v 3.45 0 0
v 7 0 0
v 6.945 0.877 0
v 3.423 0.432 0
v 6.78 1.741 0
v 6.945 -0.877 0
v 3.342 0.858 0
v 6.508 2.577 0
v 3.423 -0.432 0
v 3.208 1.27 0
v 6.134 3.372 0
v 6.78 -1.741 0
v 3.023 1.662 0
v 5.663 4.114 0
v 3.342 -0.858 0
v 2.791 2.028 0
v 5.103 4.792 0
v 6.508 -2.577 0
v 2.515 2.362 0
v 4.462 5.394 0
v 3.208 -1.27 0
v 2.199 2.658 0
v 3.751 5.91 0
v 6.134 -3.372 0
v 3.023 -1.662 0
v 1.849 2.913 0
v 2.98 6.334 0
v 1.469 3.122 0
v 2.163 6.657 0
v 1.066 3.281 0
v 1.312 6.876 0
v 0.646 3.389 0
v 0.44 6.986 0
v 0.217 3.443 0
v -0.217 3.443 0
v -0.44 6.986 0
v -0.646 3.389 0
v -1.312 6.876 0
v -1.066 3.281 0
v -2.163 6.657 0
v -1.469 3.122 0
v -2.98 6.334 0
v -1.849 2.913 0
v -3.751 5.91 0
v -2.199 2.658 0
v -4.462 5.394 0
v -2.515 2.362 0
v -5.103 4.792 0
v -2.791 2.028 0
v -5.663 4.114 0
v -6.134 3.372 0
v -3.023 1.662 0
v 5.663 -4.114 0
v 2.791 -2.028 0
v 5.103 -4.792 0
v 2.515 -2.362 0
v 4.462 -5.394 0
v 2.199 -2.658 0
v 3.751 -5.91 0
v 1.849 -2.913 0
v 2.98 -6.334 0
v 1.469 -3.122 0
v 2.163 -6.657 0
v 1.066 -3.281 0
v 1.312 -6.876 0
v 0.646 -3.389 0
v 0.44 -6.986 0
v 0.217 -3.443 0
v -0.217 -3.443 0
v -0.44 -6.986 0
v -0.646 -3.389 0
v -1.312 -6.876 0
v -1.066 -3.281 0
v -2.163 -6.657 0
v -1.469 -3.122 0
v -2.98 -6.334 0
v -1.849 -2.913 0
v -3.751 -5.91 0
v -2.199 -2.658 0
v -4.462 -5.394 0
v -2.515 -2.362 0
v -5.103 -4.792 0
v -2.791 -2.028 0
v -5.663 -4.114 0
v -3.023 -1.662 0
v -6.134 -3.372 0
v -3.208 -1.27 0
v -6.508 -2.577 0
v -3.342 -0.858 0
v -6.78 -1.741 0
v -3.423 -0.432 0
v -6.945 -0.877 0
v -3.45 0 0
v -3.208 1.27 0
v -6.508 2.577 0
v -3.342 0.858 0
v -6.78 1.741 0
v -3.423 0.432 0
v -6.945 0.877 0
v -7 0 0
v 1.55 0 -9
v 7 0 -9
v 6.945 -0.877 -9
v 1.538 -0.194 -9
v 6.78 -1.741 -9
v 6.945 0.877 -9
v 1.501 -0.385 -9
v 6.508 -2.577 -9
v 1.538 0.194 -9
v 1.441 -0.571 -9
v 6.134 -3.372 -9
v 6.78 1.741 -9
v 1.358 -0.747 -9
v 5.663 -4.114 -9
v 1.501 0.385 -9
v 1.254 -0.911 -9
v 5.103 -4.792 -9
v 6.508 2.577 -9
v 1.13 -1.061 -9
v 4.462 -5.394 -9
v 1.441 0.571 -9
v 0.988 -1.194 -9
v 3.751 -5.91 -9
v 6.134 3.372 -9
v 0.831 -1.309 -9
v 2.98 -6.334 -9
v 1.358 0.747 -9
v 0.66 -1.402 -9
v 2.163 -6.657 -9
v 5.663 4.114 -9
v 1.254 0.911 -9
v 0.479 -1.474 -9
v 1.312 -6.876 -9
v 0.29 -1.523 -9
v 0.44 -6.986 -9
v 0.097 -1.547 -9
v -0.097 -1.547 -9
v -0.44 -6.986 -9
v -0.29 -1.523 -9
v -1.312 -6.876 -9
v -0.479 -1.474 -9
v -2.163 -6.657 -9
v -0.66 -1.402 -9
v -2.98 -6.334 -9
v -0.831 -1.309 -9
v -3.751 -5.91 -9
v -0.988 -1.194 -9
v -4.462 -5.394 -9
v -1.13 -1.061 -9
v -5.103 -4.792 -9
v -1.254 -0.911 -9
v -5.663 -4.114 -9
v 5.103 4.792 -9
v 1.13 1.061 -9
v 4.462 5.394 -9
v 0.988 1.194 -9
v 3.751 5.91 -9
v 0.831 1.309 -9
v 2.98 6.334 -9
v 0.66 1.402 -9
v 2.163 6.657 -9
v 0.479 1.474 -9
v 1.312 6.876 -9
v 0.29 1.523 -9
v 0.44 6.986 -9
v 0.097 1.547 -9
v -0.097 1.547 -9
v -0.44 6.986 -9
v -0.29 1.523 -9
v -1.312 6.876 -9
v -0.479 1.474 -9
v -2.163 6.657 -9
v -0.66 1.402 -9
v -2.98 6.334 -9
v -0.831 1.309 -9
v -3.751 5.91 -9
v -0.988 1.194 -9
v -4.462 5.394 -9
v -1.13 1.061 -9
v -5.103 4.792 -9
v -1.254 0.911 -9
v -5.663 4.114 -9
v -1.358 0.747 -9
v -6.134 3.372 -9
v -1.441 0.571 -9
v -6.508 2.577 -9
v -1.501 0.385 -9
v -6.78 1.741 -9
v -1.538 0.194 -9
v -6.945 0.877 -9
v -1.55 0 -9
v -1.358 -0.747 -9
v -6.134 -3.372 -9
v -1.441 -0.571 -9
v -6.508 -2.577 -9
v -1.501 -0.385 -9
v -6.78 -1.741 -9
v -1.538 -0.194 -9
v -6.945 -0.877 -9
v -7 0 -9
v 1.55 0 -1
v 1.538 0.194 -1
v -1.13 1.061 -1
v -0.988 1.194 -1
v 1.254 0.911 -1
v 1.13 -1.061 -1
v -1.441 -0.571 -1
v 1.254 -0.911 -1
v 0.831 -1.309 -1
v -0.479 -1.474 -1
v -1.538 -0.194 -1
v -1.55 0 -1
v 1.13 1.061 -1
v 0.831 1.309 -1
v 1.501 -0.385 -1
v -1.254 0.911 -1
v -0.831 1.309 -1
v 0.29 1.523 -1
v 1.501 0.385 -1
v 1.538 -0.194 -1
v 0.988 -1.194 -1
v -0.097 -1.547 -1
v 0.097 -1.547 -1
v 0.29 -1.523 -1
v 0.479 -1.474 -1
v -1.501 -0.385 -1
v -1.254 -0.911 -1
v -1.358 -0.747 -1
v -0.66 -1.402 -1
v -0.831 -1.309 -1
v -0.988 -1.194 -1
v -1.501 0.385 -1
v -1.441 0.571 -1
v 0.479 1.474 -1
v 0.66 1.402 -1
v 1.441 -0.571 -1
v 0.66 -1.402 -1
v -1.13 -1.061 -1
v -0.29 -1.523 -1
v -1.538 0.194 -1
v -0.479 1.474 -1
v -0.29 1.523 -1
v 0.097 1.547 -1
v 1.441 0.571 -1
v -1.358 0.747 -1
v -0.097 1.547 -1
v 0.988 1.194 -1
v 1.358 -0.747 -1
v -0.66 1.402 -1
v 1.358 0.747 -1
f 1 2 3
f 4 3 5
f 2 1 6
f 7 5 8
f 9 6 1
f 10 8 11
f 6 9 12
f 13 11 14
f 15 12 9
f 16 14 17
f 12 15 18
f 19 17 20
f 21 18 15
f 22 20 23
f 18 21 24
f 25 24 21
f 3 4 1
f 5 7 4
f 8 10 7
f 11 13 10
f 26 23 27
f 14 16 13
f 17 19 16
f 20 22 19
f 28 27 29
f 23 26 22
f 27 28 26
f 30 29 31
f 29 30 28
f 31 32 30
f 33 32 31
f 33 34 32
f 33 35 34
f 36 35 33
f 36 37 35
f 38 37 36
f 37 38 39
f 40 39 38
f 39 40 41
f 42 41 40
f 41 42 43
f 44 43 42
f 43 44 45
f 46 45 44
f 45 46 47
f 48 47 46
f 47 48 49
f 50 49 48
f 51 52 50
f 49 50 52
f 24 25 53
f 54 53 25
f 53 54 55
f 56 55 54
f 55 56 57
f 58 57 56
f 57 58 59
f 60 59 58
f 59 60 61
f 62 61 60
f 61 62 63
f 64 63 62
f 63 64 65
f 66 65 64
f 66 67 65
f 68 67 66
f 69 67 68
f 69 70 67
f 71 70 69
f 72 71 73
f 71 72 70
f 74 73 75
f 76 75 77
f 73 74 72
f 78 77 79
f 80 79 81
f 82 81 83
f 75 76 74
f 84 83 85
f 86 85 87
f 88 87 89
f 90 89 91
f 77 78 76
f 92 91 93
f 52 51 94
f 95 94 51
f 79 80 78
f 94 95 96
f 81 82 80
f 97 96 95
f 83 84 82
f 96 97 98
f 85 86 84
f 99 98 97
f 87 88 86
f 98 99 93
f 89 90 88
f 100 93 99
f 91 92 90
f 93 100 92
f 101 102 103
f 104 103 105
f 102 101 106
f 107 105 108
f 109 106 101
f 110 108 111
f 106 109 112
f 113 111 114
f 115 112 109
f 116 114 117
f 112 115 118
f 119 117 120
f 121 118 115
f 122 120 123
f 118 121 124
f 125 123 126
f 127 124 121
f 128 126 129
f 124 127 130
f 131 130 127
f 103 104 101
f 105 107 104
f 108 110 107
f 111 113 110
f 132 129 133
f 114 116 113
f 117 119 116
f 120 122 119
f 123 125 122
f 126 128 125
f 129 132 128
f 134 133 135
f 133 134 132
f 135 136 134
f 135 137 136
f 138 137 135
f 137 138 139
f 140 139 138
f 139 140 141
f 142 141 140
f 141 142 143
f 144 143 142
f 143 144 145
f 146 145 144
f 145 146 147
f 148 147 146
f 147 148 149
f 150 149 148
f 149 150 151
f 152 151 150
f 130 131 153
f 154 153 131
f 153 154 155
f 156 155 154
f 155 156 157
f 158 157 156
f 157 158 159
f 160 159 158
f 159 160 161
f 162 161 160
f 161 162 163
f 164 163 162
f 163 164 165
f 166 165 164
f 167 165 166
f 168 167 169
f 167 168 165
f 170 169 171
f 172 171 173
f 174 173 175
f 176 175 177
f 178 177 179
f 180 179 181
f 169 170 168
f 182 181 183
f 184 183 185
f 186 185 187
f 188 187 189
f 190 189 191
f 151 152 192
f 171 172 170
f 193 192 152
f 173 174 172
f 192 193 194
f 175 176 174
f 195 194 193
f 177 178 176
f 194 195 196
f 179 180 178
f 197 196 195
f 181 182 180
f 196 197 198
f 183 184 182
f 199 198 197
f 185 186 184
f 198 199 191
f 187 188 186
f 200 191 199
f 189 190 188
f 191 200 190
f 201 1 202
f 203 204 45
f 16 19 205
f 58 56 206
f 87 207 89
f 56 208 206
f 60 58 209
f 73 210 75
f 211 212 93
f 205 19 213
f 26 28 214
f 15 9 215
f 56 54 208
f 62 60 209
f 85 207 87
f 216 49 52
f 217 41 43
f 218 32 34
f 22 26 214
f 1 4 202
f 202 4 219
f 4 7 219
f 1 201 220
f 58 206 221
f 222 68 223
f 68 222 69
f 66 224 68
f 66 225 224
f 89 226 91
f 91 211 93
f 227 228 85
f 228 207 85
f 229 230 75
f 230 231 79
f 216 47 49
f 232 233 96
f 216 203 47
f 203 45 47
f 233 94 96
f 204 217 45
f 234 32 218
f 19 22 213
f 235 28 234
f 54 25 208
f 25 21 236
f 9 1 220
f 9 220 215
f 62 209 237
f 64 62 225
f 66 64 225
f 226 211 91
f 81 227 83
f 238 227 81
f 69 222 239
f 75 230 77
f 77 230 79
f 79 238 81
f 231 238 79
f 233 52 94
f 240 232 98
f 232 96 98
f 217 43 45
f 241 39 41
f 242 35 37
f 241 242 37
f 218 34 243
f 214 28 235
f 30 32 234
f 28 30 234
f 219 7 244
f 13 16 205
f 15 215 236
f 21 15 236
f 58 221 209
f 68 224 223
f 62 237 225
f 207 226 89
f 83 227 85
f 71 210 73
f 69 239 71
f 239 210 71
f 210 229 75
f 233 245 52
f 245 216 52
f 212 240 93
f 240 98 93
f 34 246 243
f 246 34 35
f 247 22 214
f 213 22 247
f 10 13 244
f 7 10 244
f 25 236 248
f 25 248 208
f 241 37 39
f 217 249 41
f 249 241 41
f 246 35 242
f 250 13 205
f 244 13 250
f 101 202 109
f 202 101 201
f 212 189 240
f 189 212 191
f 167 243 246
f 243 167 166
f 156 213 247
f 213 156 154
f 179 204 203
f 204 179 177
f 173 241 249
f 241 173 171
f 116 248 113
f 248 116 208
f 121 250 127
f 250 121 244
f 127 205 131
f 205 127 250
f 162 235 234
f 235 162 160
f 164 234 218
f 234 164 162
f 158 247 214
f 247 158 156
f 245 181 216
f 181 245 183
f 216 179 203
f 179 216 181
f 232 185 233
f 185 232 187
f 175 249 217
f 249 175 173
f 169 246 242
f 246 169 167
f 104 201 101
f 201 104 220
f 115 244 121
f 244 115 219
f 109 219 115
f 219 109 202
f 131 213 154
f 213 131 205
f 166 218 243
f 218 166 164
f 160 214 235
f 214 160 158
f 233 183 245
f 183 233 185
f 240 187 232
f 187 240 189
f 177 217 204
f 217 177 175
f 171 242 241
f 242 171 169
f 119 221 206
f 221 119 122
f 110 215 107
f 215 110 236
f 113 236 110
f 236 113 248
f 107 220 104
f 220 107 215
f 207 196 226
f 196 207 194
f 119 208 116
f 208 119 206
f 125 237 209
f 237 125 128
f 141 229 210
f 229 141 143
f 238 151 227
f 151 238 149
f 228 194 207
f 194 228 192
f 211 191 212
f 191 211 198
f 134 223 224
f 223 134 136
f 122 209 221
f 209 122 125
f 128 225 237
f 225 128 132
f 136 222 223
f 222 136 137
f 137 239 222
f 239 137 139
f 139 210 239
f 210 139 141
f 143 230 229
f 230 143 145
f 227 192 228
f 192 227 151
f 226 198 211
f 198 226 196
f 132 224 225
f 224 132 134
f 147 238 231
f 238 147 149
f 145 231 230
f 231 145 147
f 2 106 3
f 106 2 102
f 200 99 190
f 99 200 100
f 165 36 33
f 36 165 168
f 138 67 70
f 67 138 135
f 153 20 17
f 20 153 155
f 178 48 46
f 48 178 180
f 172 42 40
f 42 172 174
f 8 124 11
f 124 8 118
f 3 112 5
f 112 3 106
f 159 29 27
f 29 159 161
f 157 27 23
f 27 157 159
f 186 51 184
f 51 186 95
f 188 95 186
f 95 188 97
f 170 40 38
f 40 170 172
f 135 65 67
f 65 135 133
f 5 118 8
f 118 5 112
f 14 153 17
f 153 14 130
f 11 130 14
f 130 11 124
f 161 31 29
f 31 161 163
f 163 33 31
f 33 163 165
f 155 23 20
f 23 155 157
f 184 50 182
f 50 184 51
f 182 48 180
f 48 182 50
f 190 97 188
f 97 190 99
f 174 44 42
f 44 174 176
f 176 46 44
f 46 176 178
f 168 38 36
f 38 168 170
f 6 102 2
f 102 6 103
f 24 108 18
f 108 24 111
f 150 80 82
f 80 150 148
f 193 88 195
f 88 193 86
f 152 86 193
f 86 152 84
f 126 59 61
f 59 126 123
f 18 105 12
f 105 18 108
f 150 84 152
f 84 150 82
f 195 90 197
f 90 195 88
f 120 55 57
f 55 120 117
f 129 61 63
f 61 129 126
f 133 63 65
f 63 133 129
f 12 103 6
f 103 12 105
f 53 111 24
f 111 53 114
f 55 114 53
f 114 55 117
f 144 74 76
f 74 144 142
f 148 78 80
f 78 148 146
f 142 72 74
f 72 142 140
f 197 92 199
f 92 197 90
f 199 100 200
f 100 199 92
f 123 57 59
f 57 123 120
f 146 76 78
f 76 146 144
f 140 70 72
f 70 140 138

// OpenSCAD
$fn = 50;


difference() {
	union() {
		translate(v = [0, 0, -9.0000000000]) {
			cylinder(h = 9, r = 7.0000000000);
		}
	}
	union() {
		translate(v = [0, 0, 0]) {
			rotate(a = [0, 0, 0]) {
				difference() {
					union() {
						#translate(v = [0, 0, -9.0000000000]) {
							cylinder(h = 9, r = 1.2500000000);
						}
						#translate(v = [0, 0, -1.0000000000]) {
							cylinder(h = 1.0000000000, r1 = 1.5500000000, r2 = 3.4500000000);
						}
						#translate(v = [0, 0, -9.0000000000]) {
							cylinder(h = 9, r = 1.5500000000);
						}
						#translate(v = [0, 0, -9.0000000000]) {
							cylinder(h = 9, r = 1.2500000000);
						}
					}
					union();
				}
			}
		}
	}
}
